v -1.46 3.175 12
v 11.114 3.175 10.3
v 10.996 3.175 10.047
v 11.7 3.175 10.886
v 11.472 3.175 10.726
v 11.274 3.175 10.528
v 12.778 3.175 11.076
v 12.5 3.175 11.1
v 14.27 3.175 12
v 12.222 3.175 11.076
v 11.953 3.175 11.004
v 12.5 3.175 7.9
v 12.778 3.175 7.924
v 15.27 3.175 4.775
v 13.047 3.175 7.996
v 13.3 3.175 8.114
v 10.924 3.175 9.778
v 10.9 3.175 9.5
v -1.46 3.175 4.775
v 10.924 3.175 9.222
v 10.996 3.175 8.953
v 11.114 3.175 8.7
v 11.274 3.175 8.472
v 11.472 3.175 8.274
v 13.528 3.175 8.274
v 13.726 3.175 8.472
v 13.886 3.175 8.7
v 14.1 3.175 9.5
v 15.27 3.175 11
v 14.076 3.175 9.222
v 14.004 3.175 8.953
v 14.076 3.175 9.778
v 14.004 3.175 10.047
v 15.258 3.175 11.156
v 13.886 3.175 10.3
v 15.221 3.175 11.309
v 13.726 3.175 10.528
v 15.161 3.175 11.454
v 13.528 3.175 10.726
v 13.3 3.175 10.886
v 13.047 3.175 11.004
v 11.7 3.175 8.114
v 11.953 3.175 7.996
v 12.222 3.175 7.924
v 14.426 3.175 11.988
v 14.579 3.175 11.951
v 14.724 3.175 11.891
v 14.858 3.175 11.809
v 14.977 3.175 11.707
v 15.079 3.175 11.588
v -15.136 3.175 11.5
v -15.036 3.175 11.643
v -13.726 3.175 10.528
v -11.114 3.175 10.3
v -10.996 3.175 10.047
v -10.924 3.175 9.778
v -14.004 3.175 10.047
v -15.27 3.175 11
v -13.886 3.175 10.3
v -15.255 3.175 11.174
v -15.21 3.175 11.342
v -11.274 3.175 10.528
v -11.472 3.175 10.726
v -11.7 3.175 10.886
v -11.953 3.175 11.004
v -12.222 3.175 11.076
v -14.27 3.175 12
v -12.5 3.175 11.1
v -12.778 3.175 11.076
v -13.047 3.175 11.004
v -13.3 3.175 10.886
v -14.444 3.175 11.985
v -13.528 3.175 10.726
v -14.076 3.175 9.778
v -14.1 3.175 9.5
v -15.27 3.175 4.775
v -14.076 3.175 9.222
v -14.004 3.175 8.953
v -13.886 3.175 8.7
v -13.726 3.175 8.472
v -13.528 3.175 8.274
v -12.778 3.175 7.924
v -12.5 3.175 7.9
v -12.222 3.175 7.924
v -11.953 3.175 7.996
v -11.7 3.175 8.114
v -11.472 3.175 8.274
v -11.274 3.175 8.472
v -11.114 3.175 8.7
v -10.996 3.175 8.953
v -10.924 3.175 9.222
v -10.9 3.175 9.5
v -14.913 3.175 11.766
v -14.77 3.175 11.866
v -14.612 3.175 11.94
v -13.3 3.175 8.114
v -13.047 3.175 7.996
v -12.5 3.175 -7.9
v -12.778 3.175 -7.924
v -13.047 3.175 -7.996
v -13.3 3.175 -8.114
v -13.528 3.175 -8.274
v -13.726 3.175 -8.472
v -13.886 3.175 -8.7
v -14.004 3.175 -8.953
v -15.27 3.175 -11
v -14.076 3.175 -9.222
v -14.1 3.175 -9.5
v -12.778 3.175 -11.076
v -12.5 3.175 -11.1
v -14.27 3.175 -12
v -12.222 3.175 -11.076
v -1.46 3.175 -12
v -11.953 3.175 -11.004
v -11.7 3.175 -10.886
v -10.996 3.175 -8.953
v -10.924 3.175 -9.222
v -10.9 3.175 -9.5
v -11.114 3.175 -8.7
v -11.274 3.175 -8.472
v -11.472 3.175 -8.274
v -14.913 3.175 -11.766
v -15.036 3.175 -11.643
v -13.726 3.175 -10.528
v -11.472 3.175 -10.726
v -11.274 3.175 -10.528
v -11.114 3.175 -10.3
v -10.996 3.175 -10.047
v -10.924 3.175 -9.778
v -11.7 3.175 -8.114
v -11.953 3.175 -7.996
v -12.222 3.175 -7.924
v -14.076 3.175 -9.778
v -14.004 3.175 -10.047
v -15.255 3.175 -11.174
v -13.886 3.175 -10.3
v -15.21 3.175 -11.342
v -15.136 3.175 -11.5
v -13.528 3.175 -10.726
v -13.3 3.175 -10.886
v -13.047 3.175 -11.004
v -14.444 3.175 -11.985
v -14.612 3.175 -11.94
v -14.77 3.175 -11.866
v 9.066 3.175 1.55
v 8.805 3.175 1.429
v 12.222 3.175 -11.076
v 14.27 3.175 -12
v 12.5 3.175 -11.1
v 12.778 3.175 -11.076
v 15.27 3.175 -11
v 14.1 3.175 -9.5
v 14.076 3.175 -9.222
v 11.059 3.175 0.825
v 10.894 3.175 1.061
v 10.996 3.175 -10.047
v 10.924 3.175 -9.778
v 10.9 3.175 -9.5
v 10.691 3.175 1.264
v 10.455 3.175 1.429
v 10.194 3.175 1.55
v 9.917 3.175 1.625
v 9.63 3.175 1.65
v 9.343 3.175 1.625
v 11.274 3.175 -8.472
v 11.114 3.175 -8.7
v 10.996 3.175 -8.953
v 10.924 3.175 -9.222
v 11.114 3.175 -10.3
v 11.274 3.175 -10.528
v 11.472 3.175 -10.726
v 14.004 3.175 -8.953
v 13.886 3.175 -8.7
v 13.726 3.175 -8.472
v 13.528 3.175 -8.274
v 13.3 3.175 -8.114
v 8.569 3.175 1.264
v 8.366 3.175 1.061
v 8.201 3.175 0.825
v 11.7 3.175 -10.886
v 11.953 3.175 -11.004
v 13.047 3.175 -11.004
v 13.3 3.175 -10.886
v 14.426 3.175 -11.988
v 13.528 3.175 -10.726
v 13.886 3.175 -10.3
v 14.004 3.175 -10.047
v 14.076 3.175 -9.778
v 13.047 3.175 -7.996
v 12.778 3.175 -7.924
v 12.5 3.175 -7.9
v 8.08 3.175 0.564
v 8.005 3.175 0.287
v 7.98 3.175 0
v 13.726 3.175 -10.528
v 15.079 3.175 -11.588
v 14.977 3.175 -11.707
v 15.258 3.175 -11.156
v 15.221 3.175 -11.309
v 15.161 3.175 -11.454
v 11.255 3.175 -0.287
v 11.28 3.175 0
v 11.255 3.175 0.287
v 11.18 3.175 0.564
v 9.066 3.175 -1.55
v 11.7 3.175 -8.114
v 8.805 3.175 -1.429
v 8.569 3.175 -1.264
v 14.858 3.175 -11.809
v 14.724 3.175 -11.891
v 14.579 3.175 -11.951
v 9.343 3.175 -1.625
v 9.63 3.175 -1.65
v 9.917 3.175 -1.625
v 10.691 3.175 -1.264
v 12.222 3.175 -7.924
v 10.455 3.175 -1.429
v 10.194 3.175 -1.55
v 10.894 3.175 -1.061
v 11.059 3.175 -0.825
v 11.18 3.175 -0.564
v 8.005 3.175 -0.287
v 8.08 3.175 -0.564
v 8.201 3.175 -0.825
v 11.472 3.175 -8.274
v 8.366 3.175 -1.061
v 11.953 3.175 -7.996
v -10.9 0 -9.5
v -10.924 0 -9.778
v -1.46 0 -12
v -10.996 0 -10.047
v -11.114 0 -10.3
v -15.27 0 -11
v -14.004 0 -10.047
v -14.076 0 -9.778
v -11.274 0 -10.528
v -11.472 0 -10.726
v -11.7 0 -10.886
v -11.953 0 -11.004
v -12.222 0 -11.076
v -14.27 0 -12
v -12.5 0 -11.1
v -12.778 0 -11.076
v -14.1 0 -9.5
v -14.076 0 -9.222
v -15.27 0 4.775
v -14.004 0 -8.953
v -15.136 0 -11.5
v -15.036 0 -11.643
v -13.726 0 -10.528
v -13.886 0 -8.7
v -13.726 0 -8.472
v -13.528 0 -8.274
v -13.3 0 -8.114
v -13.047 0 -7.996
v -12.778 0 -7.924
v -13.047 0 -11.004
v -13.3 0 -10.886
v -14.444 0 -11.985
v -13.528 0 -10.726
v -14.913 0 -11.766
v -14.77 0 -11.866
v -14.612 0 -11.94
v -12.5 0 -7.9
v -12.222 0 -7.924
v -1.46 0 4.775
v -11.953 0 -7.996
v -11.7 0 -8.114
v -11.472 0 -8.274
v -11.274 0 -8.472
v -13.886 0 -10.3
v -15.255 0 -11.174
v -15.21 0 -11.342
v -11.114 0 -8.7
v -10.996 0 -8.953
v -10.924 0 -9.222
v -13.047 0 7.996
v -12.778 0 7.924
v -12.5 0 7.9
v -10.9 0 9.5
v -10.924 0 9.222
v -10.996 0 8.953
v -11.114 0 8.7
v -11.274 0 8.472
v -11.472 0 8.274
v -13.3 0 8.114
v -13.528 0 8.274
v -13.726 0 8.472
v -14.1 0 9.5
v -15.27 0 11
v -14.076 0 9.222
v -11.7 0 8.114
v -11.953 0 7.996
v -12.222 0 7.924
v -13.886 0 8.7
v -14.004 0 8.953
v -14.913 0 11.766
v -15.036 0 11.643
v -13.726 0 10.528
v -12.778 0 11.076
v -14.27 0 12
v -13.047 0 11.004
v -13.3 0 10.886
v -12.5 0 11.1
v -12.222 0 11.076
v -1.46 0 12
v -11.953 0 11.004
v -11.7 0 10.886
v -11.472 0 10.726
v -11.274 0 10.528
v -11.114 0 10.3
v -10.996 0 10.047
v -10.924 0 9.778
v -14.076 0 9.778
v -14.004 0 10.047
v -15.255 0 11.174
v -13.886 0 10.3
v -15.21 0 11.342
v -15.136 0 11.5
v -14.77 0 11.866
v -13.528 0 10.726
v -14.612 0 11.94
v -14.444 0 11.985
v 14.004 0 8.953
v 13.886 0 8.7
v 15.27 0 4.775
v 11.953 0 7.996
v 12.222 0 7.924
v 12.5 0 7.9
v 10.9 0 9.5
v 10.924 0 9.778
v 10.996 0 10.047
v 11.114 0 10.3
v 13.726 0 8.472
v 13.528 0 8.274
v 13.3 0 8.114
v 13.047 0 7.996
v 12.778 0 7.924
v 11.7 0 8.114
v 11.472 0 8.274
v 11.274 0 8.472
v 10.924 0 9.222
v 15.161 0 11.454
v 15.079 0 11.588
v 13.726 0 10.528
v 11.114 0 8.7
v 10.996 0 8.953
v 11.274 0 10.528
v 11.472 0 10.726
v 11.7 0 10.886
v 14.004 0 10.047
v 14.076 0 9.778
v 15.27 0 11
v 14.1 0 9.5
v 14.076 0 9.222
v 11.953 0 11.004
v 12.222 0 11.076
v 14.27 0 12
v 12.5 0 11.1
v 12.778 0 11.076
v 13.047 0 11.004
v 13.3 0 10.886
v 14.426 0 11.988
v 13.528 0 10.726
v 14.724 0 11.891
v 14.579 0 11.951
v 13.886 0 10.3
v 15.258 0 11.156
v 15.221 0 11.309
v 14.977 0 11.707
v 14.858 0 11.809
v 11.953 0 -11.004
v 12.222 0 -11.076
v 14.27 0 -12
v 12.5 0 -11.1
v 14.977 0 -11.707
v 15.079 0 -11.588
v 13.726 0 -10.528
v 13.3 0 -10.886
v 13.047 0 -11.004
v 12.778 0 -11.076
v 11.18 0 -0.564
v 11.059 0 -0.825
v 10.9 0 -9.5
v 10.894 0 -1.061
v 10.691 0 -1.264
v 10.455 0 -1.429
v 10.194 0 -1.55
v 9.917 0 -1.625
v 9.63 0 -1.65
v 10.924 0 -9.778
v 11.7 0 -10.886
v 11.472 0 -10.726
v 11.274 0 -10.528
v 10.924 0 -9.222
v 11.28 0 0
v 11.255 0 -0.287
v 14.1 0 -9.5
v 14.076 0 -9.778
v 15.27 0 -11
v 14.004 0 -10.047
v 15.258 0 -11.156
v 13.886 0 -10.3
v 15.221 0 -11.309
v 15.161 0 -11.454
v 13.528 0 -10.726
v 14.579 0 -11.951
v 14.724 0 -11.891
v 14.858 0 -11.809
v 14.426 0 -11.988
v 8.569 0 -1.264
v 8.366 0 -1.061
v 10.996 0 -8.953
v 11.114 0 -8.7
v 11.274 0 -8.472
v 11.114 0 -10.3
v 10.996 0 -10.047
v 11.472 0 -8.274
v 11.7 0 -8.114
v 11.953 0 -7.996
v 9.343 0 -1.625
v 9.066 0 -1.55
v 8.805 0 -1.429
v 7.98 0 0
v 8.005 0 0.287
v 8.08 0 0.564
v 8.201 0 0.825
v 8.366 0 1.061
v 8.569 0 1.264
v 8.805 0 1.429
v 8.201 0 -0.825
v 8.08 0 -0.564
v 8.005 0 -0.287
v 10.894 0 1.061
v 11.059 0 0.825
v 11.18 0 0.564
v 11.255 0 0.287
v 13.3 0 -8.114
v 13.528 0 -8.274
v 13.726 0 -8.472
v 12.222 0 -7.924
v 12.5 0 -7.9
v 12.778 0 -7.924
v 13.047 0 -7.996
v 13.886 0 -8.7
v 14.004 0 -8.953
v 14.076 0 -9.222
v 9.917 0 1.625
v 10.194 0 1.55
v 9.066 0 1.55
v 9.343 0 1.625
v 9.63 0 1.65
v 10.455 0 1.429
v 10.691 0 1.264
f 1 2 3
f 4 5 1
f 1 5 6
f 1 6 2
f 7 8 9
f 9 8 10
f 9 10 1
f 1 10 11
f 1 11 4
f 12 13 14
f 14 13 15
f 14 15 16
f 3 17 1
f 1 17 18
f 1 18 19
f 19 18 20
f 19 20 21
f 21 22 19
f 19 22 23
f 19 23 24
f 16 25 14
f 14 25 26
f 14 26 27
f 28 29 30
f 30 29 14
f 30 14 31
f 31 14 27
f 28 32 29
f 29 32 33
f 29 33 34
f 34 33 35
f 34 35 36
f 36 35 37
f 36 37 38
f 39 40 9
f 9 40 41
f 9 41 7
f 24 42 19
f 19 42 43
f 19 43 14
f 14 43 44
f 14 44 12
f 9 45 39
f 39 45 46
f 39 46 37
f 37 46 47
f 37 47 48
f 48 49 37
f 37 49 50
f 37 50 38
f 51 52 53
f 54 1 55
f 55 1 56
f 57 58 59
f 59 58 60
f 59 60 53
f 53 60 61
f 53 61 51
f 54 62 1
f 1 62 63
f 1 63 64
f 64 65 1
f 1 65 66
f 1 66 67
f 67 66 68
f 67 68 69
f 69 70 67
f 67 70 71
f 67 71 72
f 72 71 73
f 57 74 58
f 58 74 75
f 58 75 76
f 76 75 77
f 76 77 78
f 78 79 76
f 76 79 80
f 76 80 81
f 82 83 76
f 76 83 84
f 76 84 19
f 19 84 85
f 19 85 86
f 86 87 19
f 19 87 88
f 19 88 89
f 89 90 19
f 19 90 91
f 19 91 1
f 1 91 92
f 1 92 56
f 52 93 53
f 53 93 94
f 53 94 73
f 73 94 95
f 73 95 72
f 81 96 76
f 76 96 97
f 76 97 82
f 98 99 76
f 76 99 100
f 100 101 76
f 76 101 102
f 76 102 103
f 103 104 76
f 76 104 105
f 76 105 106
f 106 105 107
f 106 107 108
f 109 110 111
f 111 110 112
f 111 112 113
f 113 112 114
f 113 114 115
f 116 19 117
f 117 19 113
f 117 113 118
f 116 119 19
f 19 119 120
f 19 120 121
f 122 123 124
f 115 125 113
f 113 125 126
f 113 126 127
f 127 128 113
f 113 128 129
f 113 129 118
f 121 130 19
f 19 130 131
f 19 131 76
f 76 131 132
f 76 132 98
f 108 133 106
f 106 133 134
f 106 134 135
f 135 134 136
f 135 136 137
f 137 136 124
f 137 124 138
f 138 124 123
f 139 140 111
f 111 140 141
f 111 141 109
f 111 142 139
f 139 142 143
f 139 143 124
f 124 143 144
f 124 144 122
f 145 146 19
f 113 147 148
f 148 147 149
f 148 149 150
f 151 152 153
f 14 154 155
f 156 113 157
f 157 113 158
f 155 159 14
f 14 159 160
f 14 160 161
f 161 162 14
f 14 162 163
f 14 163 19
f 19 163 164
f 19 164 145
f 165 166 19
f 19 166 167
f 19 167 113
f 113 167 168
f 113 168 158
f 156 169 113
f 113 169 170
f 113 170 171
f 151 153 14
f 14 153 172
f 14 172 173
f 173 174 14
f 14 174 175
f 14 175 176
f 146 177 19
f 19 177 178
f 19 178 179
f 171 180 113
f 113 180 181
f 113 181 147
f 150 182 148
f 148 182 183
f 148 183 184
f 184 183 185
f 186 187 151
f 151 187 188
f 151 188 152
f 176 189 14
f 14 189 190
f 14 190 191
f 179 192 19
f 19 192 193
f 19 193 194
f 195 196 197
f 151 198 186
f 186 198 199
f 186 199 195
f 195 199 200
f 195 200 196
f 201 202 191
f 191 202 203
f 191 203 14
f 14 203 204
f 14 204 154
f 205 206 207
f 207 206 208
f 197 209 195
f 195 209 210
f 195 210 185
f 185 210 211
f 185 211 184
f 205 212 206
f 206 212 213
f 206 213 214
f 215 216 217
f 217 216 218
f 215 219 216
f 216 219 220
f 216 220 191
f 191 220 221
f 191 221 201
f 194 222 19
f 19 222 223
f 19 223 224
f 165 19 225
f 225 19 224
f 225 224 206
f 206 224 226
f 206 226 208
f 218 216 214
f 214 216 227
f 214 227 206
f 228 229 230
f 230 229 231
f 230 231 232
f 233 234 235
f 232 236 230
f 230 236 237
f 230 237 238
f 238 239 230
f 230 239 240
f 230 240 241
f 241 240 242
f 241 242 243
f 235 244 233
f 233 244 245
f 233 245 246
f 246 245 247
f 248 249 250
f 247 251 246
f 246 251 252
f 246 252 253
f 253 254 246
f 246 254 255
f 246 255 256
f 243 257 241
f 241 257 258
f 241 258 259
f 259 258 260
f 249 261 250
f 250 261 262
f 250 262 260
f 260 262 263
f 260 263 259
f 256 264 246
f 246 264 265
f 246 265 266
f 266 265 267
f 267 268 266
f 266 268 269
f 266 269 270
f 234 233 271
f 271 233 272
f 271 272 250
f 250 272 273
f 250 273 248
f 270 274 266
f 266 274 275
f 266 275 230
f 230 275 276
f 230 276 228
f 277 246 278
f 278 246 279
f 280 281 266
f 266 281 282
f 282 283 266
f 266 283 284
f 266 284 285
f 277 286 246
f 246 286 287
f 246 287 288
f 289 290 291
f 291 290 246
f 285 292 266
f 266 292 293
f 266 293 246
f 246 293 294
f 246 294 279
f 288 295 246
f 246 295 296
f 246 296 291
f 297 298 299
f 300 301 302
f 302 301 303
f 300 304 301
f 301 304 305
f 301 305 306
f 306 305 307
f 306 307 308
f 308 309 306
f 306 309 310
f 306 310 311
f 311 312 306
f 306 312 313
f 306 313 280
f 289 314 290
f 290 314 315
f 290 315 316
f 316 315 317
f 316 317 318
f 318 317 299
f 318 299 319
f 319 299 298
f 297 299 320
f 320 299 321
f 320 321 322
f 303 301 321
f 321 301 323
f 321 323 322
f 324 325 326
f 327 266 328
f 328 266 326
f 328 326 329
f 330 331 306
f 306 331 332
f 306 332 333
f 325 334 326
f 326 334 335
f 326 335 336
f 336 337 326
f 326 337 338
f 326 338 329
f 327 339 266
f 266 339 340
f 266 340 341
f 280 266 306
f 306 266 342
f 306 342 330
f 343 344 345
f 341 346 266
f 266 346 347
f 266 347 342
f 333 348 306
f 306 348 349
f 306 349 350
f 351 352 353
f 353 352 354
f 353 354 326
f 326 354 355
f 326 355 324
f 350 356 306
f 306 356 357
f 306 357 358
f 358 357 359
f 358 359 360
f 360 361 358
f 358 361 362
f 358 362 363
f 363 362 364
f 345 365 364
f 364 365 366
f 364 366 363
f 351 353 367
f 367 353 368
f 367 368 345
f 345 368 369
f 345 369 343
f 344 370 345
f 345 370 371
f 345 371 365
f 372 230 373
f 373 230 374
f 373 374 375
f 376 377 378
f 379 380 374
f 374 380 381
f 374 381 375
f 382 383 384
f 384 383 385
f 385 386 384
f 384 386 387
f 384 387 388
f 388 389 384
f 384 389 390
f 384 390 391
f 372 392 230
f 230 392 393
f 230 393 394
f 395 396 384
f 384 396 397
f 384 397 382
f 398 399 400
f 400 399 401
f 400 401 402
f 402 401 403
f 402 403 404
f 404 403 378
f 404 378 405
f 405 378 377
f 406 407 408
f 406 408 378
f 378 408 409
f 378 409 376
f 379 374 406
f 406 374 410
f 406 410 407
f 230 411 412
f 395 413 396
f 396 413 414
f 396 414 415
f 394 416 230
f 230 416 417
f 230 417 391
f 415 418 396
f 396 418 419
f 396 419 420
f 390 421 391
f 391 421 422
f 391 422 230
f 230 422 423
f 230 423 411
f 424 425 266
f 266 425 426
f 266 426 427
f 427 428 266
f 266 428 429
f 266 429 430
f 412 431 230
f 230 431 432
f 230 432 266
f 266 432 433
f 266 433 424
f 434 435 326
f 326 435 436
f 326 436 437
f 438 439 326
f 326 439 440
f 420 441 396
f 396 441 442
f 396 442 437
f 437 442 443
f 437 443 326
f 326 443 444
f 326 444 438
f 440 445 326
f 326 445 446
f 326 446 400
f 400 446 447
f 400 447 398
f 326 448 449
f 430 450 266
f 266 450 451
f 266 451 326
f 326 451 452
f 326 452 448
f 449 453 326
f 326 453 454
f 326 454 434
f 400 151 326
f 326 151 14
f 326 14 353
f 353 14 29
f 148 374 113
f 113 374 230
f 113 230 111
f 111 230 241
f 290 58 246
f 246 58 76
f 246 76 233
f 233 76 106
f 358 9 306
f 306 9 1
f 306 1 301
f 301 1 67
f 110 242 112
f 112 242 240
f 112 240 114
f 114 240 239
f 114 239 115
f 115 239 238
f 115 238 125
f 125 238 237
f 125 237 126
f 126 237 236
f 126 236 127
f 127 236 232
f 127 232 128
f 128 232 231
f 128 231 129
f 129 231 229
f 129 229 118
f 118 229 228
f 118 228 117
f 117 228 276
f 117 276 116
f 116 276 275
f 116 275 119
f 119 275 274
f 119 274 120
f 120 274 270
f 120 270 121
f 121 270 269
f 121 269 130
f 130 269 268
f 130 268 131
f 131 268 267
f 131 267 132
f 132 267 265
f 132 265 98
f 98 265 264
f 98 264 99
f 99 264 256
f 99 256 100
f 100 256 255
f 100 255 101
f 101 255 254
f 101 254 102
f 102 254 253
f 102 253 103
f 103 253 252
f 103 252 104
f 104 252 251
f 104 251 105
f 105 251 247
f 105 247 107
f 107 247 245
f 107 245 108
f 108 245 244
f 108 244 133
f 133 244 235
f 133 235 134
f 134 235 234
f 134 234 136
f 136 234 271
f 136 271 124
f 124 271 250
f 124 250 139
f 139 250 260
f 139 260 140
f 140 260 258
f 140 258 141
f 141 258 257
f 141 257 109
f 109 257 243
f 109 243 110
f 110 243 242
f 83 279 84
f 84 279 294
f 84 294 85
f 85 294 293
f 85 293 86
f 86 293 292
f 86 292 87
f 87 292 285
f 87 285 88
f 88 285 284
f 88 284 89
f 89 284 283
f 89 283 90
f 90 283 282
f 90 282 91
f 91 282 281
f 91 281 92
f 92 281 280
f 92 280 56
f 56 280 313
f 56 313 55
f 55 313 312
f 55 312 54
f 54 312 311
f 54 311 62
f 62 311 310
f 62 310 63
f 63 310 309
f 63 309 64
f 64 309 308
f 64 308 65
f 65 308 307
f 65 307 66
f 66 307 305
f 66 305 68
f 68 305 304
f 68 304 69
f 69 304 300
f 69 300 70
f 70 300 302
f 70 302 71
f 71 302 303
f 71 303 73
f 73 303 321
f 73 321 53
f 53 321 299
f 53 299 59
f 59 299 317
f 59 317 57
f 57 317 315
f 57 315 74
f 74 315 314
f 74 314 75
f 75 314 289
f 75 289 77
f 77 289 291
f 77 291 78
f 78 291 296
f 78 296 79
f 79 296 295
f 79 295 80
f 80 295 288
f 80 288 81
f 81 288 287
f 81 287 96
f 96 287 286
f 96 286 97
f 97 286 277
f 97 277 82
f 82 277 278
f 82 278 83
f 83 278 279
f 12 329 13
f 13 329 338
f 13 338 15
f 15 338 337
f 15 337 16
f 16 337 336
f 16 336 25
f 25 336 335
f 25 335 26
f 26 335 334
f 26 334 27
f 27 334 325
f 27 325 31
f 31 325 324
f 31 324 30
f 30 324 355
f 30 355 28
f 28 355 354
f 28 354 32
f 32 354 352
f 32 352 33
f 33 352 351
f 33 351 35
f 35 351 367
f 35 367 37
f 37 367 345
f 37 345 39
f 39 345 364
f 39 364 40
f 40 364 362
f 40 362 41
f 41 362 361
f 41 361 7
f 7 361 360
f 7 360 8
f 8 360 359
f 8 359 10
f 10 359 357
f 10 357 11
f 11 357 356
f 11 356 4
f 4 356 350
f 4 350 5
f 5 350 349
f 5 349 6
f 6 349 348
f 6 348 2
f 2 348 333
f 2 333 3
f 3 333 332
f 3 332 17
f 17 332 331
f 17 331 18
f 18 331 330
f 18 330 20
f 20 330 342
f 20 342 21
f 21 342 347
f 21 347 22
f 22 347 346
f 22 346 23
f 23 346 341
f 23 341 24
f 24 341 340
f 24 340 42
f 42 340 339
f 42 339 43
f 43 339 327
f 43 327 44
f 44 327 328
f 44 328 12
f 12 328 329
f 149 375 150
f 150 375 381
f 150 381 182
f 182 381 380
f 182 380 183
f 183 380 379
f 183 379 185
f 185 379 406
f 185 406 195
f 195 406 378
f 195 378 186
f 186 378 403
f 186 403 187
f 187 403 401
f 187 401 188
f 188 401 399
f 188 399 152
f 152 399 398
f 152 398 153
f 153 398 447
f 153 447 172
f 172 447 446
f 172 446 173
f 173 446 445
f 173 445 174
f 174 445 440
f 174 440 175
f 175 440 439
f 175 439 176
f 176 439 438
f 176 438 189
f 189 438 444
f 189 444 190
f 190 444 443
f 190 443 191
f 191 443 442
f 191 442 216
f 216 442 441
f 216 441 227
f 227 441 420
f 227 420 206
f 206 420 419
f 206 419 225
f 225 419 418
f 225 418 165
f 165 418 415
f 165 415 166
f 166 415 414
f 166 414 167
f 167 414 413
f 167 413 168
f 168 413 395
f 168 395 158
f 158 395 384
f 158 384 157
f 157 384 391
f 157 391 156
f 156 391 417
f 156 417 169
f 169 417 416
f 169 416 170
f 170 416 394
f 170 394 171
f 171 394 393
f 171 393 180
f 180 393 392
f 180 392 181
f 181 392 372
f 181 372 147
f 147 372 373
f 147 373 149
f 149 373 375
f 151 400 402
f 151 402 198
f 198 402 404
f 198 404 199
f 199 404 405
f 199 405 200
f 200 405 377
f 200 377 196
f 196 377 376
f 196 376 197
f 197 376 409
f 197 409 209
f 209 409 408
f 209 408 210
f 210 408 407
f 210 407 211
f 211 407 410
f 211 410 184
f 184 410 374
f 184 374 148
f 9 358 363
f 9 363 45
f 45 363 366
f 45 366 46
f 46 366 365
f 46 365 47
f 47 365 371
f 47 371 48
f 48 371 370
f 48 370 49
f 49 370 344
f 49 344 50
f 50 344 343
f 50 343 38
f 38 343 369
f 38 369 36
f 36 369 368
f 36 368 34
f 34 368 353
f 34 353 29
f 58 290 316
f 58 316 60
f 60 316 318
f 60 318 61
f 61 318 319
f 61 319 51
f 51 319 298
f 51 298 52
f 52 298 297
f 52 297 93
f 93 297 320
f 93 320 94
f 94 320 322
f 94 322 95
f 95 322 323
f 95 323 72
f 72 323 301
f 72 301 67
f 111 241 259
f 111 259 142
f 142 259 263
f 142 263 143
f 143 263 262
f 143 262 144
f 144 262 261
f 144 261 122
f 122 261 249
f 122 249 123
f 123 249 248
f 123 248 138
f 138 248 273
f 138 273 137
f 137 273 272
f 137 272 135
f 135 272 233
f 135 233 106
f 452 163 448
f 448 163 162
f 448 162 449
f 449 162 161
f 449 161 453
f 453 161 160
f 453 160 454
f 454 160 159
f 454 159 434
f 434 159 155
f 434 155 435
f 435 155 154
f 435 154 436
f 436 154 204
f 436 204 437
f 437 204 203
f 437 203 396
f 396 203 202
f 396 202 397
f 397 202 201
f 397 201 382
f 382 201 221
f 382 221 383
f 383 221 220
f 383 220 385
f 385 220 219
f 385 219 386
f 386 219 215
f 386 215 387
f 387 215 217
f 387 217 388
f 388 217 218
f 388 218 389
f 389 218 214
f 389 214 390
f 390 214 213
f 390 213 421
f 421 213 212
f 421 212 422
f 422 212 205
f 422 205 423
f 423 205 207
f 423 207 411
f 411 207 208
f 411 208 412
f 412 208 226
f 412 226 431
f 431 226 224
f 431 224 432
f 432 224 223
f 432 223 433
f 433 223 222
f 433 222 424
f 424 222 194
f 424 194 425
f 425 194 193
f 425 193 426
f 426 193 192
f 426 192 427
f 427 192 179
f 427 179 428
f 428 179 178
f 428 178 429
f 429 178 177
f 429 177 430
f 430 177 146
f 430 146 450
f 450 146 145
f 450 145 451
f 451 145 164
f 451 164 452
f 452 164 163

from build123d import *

# Parameters (mm, degrees)
SKETCH1_W           = 30.54
SKETCH1_H           = 24
SKETCH1_R           = 1.6
BOSS_EXTRUDE1_DEPTH = 3.175
FILLET1_R           = 1
CUT_EXTRUDE1_REACH  = 21.679
SKETCH3_R           = 1.65


with BuildPart() as part:
    # Sketch1 → Boss-Extrude1 (new body)
    with BuildSketch(Plane(origin=(0, 0, 0), x_dir=(1, 0, 0), z_dir=(0, 1, 0))):
        Rectangle(SKETCH1_W, SKETCH1_H)
        with Locations(Location((-12.5, 9.5, 0), (0, 0, 270))):
            Circle(SKETCH1_R, mode=Mode.SUBTRACT)
        with Locations(Location((-12.5, -9.5, 0), (0, 0, 270))):
            Circle(SKETCH1_R, mode=Mode.SUBTRACT)
        with Locations(Location((12.5, -9.5, 0), (0, 0, 270))):
            Circle(SKETCH1_R, mode=Mode.SUBTRACT)
        with Locations(Location((12.5, 9.5, 0), (0, 0, 270))):
            Circle(SKETCH1_R, mode=Mode.SUBTRACT)
    extrude(amount=BOSS_EXTRUDE1_DEPTH)

    # Fillet1
    fillet1_edges = [part.edges().sort_by_distance(p)[0] for p in [
        (15.27, 1.5875, 12),
        (-15.27, 1.5875, 12),
        (-15.27, 1.5875, -12),
        (15.27, 1.5875, -12),
    ]]
    fillet(fillet1_edges, radius=FILLET1_R)

    # Sketch3 → Cut-Extrude1 (cut, up to next)
    with BuildSketch(Plane(origin=(0, 3.175, 0), x_dir=(1, 0, 0), z_dir=(0, 1, 0)), mode=Mode.PRIVATE) as cut_extrude1_sk1:
        with Locations(Location((9.63, 0, 0), (0, 0, 270))):
            Circle(SKETCH3_R)
    cut_extrude1_tool1 = extrude(cut_extrude1_sk1.sketch, amount=-CUT_EXTRUDE1_REACH, mode=Mode.PRIVATE) & part.part
    add(cut_extrude1_tool1.solids().sort_by_distance((9.63, 3.175, 0))[0], mode=Mode.SUBTRACT)


solid = part.part
